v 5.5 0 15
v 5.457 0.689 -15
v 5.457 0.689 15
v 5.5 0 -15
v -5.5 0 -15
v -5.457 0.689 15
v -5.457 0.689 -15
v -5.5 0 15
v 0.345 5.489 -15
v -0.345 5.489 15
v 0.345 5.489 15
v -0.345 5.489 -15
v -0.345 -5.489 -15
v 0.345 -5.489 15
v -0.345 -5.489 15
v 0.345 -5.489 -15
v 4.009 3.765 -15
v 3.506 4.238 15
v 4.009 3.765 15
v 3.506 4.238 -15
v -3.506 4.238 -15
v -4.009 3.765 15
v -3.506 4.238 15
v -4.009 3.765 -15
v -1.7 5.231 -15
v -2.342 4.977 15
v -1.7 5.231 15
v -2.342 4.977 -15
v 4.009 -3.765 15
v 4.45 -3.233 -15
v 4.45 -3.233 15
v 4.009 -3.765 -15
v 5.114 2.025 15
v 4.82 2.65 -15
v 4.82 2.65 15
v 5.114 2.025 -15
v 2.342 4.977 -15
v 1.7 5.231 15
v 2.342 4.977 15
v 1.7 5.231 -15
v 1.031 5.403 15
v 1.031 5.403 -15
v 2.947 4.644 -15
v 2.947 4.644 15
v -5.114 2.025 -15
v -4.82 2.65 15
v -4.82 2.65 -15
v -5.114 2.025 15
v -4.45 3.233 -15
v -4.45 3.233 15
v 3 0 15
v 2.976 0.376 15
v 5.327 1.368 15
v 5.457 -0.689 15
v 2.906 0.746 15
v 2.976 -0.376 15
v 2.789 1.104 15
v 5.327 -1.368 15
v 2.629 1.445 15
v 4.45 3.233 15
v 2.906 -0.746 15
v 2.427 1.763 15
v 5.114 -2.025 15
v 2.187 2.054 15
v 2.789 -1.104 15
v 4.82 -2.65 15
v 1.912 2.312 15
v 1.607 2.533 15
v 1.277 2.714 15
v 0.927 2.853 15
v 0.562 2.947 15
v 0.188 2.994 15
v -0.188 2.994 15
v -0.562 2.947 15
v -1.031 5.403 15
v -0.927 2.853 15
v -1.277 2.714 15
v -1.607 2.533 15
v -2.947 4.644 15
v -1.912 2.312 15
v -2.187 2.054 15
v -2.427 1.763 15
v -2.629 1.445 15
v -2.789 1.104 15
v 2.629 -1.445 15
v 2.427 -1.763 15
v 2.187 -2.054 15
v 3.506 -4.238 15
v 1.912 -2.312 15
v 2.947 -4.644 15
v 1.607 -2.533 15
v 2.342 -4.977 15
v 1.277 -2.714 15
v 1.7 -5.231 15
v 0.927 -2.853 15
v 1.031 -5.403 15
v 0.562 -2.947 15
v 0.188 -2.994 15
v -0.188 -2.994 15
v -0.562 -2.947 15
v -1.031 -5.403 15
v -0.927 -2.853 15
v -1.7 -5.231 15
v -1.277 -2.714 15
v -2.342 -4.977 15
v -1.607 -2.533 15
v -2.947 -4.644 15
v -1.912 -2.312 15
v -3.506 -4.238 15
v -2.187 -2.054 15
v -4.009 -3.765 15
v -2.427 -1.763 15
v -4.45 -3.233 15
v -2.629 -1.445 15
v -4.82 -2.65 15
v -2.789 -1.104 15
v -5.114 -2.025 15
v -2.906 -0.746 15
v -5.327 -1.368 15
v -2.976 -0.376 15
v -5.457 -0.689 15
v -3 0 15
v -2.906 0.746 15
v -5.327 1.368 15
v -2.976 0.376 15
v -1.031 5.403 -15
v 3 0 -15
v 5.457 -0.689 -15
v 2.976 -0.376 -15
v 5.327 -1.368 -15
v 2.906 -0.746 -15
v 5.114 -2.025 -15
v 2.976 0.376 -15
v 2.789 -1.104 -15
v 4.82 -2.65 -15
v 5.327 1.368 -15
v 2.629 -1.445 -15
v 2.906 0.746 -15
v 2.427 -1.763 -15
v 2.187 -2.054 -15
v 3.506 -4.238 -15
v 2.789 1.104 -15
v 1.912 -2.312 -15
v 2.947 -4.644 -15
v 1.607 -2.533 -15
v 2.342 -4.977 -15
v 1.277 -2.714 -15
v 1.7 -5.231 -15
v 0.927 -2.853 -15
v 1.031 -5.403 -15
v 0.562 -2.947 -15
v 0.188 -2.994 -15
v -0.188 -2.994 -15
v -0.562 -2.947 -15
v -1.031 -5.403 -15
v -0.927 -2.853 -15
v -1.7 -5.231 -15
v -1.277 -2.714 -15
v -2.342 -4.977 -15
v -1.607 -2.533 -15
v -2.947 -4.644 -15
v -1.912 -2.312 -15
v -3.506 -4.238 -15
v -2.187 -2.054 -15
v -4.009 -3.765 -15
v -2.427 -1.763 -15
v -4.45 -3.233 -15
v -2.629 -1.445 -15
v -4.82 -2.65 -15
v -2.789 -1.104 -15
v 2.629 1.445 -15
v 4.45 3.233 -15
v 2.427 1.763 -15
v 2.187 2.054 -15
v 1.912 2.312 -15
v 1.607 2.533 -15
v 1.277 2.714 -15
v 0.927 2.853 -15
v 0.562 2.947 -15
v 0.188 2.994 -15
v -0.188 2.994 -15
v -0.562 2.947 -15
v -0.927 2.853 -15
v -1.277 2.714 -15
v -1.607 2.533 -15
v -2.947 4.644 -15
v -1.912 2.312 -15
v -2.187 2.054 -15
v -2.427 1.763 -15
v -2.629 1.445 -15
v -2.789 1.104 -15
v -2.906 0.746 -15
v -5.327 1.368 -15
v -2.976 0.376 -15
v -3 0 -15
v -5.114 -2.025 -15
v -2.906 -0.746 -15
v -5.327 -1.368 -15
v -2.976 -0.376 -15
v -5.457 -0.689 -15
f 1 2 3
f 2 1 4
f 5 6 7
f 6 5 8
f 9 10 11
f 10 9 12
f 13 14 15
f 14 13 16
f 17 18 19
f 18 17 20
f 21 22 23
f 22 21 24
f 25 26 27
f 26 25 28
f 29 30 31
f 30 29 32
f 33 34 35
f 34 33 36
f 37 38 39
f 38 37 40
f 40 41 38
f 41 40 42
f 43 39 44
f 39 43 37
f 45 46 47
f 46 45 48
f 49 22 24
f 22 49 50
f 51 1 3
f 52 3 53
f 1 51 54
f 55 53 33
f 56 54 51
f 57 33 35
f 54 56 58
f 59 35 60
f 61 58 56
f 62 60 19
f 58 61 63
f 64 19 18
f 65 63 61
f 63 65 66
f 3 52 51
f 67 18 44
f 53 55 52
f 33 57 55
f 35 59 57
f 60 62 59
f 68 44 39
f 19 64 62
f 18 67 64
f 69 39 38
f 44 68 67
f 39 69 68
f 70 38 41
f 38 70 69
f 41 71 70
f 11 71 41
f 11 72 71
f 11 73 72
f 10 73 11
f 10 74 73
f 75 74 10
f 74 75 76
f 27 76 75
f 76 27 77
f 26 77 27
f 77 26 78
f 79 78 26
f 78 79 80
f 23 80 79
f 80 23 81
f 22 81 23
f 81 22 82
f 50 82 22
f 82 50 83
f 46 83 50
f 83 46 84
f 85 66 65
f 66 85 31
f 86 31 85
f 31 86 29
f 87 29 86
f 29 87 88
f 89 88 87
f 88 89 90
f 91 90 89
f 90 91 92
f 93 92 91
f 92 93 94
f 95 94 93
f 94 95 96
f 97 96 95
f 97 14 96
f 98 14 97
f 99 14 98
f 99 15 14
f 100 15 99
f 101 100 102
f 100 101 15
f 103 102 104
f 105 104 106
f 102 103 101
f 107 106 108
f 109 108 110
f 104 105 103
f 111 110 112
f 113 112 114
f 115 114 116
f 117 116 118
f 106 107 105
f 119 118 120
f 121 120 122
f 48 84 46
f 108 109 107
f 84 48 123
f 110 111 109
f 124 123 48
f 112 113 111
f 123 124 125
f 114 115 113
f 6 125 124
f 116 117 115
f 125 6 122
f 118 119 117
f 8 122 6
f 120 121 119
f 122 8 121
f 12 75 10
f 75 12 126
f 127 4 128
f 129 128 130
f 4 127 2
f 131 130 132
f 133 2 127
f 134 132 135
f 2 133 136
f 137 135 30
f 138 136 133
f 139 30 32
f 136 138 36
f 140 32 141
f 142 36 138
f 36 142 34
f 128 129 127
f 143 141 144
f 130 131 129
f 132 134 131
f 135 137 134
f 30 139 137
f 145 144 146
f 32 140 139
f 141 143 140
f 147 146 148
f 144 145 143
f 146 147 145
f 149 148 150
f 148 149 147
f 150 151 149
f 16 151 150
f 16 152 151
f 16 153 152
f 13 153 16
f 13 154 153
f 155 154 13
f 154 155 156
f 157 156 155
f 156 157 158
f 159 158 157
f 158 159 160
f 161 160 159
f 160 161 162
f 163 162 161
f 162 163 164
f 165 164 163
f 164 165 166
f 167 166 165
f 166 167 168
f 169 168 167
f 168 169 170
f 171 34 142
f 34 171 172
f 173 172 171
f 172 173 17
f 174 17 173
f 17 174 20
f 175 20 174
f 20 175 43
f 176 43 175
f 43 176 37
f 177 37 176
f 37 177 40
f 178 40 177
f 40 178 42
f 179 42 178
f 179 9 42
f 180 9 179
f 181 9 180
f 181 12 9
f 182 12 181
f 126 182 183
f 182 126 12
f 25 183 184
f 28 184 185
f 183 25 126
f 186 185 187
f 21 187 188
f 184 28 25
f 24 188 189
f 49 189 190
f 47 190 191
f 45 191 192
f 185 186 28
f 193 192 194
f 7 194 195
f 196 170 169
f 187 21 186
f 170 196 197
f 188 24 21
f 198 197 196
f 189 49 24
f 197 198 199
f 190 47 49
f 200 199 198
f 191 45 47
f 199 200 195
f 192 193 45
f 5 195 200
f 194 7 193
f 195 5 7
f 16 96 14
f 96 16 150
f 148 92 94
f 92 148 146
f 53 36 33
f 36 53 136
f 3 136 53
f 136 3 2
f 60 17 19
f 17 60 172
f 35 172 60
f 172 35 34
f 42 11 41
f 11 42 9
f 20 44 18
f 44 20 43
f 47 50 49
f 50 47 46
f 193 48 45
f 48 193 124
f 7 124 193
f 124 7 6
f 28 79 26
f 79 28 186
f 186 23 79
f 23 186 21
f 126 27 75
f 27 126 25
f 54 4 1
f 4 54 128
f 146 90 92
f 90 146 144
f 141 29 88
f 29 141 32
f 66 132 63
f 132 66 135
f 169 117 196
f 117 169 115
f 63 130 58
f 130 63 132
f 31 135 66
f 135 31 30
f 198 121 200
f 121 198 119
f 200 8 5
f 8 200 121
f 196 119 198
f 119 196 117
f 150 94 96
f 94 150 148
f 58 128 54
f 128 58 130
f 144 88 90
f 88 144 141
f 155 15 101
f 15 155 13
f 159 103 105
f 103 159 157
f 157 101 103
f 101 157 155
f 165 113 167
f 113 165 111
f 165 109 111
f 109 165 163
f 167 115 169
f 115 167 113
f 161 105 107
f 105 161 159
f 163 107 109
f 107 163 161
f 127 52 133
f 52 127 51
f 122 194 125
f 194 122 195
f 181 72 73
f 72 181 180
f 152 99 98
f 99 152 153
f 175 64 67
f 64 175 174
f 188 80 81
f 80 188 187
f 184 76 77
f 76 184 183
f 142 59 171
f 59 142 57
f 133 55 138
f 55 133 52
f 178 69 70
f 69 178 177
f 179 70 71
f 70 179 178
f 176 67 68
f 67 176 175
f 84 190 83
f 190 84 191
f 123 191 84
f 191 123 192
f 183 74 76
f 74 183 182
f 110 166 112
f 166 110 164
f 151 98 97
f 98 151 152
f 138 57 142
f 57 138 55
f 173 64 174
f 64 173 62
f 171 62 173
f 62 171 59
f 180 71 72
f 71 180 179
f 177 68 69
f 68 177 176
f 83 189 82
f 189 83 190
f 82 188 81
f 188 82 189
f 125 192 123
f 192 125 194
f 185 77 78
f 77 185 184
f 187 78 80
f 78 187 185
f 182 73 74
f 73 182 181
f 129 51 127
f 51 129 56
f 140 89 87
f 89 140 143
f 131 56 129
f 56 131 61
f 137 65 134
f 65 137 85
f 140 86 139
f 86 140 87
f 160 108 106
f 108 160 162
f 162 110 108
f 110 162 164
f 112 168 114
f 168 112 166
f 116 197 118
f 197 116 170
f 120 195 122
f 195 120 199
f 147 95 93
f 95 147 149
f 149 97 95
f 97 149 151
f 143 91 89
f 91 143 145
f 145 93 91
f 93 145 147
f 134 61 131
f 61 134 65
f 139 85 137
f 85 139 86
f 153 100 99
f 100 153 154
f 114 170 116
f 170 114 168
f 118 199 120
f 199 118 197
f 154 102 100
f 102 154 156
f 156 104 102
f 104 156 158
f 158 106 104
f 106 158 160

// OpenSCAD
$fn = 50;


difference() {
	union() {
		translate(v = [0, 0, -15.0000000000]) {
			cylinder(h = 30, r = 5.5000000000);
		}
	}
	union() {
		translate(v = [0, 0, -100.0000000000]) {
			cylinder(h = 200, r = 3);
		}
	}
}
